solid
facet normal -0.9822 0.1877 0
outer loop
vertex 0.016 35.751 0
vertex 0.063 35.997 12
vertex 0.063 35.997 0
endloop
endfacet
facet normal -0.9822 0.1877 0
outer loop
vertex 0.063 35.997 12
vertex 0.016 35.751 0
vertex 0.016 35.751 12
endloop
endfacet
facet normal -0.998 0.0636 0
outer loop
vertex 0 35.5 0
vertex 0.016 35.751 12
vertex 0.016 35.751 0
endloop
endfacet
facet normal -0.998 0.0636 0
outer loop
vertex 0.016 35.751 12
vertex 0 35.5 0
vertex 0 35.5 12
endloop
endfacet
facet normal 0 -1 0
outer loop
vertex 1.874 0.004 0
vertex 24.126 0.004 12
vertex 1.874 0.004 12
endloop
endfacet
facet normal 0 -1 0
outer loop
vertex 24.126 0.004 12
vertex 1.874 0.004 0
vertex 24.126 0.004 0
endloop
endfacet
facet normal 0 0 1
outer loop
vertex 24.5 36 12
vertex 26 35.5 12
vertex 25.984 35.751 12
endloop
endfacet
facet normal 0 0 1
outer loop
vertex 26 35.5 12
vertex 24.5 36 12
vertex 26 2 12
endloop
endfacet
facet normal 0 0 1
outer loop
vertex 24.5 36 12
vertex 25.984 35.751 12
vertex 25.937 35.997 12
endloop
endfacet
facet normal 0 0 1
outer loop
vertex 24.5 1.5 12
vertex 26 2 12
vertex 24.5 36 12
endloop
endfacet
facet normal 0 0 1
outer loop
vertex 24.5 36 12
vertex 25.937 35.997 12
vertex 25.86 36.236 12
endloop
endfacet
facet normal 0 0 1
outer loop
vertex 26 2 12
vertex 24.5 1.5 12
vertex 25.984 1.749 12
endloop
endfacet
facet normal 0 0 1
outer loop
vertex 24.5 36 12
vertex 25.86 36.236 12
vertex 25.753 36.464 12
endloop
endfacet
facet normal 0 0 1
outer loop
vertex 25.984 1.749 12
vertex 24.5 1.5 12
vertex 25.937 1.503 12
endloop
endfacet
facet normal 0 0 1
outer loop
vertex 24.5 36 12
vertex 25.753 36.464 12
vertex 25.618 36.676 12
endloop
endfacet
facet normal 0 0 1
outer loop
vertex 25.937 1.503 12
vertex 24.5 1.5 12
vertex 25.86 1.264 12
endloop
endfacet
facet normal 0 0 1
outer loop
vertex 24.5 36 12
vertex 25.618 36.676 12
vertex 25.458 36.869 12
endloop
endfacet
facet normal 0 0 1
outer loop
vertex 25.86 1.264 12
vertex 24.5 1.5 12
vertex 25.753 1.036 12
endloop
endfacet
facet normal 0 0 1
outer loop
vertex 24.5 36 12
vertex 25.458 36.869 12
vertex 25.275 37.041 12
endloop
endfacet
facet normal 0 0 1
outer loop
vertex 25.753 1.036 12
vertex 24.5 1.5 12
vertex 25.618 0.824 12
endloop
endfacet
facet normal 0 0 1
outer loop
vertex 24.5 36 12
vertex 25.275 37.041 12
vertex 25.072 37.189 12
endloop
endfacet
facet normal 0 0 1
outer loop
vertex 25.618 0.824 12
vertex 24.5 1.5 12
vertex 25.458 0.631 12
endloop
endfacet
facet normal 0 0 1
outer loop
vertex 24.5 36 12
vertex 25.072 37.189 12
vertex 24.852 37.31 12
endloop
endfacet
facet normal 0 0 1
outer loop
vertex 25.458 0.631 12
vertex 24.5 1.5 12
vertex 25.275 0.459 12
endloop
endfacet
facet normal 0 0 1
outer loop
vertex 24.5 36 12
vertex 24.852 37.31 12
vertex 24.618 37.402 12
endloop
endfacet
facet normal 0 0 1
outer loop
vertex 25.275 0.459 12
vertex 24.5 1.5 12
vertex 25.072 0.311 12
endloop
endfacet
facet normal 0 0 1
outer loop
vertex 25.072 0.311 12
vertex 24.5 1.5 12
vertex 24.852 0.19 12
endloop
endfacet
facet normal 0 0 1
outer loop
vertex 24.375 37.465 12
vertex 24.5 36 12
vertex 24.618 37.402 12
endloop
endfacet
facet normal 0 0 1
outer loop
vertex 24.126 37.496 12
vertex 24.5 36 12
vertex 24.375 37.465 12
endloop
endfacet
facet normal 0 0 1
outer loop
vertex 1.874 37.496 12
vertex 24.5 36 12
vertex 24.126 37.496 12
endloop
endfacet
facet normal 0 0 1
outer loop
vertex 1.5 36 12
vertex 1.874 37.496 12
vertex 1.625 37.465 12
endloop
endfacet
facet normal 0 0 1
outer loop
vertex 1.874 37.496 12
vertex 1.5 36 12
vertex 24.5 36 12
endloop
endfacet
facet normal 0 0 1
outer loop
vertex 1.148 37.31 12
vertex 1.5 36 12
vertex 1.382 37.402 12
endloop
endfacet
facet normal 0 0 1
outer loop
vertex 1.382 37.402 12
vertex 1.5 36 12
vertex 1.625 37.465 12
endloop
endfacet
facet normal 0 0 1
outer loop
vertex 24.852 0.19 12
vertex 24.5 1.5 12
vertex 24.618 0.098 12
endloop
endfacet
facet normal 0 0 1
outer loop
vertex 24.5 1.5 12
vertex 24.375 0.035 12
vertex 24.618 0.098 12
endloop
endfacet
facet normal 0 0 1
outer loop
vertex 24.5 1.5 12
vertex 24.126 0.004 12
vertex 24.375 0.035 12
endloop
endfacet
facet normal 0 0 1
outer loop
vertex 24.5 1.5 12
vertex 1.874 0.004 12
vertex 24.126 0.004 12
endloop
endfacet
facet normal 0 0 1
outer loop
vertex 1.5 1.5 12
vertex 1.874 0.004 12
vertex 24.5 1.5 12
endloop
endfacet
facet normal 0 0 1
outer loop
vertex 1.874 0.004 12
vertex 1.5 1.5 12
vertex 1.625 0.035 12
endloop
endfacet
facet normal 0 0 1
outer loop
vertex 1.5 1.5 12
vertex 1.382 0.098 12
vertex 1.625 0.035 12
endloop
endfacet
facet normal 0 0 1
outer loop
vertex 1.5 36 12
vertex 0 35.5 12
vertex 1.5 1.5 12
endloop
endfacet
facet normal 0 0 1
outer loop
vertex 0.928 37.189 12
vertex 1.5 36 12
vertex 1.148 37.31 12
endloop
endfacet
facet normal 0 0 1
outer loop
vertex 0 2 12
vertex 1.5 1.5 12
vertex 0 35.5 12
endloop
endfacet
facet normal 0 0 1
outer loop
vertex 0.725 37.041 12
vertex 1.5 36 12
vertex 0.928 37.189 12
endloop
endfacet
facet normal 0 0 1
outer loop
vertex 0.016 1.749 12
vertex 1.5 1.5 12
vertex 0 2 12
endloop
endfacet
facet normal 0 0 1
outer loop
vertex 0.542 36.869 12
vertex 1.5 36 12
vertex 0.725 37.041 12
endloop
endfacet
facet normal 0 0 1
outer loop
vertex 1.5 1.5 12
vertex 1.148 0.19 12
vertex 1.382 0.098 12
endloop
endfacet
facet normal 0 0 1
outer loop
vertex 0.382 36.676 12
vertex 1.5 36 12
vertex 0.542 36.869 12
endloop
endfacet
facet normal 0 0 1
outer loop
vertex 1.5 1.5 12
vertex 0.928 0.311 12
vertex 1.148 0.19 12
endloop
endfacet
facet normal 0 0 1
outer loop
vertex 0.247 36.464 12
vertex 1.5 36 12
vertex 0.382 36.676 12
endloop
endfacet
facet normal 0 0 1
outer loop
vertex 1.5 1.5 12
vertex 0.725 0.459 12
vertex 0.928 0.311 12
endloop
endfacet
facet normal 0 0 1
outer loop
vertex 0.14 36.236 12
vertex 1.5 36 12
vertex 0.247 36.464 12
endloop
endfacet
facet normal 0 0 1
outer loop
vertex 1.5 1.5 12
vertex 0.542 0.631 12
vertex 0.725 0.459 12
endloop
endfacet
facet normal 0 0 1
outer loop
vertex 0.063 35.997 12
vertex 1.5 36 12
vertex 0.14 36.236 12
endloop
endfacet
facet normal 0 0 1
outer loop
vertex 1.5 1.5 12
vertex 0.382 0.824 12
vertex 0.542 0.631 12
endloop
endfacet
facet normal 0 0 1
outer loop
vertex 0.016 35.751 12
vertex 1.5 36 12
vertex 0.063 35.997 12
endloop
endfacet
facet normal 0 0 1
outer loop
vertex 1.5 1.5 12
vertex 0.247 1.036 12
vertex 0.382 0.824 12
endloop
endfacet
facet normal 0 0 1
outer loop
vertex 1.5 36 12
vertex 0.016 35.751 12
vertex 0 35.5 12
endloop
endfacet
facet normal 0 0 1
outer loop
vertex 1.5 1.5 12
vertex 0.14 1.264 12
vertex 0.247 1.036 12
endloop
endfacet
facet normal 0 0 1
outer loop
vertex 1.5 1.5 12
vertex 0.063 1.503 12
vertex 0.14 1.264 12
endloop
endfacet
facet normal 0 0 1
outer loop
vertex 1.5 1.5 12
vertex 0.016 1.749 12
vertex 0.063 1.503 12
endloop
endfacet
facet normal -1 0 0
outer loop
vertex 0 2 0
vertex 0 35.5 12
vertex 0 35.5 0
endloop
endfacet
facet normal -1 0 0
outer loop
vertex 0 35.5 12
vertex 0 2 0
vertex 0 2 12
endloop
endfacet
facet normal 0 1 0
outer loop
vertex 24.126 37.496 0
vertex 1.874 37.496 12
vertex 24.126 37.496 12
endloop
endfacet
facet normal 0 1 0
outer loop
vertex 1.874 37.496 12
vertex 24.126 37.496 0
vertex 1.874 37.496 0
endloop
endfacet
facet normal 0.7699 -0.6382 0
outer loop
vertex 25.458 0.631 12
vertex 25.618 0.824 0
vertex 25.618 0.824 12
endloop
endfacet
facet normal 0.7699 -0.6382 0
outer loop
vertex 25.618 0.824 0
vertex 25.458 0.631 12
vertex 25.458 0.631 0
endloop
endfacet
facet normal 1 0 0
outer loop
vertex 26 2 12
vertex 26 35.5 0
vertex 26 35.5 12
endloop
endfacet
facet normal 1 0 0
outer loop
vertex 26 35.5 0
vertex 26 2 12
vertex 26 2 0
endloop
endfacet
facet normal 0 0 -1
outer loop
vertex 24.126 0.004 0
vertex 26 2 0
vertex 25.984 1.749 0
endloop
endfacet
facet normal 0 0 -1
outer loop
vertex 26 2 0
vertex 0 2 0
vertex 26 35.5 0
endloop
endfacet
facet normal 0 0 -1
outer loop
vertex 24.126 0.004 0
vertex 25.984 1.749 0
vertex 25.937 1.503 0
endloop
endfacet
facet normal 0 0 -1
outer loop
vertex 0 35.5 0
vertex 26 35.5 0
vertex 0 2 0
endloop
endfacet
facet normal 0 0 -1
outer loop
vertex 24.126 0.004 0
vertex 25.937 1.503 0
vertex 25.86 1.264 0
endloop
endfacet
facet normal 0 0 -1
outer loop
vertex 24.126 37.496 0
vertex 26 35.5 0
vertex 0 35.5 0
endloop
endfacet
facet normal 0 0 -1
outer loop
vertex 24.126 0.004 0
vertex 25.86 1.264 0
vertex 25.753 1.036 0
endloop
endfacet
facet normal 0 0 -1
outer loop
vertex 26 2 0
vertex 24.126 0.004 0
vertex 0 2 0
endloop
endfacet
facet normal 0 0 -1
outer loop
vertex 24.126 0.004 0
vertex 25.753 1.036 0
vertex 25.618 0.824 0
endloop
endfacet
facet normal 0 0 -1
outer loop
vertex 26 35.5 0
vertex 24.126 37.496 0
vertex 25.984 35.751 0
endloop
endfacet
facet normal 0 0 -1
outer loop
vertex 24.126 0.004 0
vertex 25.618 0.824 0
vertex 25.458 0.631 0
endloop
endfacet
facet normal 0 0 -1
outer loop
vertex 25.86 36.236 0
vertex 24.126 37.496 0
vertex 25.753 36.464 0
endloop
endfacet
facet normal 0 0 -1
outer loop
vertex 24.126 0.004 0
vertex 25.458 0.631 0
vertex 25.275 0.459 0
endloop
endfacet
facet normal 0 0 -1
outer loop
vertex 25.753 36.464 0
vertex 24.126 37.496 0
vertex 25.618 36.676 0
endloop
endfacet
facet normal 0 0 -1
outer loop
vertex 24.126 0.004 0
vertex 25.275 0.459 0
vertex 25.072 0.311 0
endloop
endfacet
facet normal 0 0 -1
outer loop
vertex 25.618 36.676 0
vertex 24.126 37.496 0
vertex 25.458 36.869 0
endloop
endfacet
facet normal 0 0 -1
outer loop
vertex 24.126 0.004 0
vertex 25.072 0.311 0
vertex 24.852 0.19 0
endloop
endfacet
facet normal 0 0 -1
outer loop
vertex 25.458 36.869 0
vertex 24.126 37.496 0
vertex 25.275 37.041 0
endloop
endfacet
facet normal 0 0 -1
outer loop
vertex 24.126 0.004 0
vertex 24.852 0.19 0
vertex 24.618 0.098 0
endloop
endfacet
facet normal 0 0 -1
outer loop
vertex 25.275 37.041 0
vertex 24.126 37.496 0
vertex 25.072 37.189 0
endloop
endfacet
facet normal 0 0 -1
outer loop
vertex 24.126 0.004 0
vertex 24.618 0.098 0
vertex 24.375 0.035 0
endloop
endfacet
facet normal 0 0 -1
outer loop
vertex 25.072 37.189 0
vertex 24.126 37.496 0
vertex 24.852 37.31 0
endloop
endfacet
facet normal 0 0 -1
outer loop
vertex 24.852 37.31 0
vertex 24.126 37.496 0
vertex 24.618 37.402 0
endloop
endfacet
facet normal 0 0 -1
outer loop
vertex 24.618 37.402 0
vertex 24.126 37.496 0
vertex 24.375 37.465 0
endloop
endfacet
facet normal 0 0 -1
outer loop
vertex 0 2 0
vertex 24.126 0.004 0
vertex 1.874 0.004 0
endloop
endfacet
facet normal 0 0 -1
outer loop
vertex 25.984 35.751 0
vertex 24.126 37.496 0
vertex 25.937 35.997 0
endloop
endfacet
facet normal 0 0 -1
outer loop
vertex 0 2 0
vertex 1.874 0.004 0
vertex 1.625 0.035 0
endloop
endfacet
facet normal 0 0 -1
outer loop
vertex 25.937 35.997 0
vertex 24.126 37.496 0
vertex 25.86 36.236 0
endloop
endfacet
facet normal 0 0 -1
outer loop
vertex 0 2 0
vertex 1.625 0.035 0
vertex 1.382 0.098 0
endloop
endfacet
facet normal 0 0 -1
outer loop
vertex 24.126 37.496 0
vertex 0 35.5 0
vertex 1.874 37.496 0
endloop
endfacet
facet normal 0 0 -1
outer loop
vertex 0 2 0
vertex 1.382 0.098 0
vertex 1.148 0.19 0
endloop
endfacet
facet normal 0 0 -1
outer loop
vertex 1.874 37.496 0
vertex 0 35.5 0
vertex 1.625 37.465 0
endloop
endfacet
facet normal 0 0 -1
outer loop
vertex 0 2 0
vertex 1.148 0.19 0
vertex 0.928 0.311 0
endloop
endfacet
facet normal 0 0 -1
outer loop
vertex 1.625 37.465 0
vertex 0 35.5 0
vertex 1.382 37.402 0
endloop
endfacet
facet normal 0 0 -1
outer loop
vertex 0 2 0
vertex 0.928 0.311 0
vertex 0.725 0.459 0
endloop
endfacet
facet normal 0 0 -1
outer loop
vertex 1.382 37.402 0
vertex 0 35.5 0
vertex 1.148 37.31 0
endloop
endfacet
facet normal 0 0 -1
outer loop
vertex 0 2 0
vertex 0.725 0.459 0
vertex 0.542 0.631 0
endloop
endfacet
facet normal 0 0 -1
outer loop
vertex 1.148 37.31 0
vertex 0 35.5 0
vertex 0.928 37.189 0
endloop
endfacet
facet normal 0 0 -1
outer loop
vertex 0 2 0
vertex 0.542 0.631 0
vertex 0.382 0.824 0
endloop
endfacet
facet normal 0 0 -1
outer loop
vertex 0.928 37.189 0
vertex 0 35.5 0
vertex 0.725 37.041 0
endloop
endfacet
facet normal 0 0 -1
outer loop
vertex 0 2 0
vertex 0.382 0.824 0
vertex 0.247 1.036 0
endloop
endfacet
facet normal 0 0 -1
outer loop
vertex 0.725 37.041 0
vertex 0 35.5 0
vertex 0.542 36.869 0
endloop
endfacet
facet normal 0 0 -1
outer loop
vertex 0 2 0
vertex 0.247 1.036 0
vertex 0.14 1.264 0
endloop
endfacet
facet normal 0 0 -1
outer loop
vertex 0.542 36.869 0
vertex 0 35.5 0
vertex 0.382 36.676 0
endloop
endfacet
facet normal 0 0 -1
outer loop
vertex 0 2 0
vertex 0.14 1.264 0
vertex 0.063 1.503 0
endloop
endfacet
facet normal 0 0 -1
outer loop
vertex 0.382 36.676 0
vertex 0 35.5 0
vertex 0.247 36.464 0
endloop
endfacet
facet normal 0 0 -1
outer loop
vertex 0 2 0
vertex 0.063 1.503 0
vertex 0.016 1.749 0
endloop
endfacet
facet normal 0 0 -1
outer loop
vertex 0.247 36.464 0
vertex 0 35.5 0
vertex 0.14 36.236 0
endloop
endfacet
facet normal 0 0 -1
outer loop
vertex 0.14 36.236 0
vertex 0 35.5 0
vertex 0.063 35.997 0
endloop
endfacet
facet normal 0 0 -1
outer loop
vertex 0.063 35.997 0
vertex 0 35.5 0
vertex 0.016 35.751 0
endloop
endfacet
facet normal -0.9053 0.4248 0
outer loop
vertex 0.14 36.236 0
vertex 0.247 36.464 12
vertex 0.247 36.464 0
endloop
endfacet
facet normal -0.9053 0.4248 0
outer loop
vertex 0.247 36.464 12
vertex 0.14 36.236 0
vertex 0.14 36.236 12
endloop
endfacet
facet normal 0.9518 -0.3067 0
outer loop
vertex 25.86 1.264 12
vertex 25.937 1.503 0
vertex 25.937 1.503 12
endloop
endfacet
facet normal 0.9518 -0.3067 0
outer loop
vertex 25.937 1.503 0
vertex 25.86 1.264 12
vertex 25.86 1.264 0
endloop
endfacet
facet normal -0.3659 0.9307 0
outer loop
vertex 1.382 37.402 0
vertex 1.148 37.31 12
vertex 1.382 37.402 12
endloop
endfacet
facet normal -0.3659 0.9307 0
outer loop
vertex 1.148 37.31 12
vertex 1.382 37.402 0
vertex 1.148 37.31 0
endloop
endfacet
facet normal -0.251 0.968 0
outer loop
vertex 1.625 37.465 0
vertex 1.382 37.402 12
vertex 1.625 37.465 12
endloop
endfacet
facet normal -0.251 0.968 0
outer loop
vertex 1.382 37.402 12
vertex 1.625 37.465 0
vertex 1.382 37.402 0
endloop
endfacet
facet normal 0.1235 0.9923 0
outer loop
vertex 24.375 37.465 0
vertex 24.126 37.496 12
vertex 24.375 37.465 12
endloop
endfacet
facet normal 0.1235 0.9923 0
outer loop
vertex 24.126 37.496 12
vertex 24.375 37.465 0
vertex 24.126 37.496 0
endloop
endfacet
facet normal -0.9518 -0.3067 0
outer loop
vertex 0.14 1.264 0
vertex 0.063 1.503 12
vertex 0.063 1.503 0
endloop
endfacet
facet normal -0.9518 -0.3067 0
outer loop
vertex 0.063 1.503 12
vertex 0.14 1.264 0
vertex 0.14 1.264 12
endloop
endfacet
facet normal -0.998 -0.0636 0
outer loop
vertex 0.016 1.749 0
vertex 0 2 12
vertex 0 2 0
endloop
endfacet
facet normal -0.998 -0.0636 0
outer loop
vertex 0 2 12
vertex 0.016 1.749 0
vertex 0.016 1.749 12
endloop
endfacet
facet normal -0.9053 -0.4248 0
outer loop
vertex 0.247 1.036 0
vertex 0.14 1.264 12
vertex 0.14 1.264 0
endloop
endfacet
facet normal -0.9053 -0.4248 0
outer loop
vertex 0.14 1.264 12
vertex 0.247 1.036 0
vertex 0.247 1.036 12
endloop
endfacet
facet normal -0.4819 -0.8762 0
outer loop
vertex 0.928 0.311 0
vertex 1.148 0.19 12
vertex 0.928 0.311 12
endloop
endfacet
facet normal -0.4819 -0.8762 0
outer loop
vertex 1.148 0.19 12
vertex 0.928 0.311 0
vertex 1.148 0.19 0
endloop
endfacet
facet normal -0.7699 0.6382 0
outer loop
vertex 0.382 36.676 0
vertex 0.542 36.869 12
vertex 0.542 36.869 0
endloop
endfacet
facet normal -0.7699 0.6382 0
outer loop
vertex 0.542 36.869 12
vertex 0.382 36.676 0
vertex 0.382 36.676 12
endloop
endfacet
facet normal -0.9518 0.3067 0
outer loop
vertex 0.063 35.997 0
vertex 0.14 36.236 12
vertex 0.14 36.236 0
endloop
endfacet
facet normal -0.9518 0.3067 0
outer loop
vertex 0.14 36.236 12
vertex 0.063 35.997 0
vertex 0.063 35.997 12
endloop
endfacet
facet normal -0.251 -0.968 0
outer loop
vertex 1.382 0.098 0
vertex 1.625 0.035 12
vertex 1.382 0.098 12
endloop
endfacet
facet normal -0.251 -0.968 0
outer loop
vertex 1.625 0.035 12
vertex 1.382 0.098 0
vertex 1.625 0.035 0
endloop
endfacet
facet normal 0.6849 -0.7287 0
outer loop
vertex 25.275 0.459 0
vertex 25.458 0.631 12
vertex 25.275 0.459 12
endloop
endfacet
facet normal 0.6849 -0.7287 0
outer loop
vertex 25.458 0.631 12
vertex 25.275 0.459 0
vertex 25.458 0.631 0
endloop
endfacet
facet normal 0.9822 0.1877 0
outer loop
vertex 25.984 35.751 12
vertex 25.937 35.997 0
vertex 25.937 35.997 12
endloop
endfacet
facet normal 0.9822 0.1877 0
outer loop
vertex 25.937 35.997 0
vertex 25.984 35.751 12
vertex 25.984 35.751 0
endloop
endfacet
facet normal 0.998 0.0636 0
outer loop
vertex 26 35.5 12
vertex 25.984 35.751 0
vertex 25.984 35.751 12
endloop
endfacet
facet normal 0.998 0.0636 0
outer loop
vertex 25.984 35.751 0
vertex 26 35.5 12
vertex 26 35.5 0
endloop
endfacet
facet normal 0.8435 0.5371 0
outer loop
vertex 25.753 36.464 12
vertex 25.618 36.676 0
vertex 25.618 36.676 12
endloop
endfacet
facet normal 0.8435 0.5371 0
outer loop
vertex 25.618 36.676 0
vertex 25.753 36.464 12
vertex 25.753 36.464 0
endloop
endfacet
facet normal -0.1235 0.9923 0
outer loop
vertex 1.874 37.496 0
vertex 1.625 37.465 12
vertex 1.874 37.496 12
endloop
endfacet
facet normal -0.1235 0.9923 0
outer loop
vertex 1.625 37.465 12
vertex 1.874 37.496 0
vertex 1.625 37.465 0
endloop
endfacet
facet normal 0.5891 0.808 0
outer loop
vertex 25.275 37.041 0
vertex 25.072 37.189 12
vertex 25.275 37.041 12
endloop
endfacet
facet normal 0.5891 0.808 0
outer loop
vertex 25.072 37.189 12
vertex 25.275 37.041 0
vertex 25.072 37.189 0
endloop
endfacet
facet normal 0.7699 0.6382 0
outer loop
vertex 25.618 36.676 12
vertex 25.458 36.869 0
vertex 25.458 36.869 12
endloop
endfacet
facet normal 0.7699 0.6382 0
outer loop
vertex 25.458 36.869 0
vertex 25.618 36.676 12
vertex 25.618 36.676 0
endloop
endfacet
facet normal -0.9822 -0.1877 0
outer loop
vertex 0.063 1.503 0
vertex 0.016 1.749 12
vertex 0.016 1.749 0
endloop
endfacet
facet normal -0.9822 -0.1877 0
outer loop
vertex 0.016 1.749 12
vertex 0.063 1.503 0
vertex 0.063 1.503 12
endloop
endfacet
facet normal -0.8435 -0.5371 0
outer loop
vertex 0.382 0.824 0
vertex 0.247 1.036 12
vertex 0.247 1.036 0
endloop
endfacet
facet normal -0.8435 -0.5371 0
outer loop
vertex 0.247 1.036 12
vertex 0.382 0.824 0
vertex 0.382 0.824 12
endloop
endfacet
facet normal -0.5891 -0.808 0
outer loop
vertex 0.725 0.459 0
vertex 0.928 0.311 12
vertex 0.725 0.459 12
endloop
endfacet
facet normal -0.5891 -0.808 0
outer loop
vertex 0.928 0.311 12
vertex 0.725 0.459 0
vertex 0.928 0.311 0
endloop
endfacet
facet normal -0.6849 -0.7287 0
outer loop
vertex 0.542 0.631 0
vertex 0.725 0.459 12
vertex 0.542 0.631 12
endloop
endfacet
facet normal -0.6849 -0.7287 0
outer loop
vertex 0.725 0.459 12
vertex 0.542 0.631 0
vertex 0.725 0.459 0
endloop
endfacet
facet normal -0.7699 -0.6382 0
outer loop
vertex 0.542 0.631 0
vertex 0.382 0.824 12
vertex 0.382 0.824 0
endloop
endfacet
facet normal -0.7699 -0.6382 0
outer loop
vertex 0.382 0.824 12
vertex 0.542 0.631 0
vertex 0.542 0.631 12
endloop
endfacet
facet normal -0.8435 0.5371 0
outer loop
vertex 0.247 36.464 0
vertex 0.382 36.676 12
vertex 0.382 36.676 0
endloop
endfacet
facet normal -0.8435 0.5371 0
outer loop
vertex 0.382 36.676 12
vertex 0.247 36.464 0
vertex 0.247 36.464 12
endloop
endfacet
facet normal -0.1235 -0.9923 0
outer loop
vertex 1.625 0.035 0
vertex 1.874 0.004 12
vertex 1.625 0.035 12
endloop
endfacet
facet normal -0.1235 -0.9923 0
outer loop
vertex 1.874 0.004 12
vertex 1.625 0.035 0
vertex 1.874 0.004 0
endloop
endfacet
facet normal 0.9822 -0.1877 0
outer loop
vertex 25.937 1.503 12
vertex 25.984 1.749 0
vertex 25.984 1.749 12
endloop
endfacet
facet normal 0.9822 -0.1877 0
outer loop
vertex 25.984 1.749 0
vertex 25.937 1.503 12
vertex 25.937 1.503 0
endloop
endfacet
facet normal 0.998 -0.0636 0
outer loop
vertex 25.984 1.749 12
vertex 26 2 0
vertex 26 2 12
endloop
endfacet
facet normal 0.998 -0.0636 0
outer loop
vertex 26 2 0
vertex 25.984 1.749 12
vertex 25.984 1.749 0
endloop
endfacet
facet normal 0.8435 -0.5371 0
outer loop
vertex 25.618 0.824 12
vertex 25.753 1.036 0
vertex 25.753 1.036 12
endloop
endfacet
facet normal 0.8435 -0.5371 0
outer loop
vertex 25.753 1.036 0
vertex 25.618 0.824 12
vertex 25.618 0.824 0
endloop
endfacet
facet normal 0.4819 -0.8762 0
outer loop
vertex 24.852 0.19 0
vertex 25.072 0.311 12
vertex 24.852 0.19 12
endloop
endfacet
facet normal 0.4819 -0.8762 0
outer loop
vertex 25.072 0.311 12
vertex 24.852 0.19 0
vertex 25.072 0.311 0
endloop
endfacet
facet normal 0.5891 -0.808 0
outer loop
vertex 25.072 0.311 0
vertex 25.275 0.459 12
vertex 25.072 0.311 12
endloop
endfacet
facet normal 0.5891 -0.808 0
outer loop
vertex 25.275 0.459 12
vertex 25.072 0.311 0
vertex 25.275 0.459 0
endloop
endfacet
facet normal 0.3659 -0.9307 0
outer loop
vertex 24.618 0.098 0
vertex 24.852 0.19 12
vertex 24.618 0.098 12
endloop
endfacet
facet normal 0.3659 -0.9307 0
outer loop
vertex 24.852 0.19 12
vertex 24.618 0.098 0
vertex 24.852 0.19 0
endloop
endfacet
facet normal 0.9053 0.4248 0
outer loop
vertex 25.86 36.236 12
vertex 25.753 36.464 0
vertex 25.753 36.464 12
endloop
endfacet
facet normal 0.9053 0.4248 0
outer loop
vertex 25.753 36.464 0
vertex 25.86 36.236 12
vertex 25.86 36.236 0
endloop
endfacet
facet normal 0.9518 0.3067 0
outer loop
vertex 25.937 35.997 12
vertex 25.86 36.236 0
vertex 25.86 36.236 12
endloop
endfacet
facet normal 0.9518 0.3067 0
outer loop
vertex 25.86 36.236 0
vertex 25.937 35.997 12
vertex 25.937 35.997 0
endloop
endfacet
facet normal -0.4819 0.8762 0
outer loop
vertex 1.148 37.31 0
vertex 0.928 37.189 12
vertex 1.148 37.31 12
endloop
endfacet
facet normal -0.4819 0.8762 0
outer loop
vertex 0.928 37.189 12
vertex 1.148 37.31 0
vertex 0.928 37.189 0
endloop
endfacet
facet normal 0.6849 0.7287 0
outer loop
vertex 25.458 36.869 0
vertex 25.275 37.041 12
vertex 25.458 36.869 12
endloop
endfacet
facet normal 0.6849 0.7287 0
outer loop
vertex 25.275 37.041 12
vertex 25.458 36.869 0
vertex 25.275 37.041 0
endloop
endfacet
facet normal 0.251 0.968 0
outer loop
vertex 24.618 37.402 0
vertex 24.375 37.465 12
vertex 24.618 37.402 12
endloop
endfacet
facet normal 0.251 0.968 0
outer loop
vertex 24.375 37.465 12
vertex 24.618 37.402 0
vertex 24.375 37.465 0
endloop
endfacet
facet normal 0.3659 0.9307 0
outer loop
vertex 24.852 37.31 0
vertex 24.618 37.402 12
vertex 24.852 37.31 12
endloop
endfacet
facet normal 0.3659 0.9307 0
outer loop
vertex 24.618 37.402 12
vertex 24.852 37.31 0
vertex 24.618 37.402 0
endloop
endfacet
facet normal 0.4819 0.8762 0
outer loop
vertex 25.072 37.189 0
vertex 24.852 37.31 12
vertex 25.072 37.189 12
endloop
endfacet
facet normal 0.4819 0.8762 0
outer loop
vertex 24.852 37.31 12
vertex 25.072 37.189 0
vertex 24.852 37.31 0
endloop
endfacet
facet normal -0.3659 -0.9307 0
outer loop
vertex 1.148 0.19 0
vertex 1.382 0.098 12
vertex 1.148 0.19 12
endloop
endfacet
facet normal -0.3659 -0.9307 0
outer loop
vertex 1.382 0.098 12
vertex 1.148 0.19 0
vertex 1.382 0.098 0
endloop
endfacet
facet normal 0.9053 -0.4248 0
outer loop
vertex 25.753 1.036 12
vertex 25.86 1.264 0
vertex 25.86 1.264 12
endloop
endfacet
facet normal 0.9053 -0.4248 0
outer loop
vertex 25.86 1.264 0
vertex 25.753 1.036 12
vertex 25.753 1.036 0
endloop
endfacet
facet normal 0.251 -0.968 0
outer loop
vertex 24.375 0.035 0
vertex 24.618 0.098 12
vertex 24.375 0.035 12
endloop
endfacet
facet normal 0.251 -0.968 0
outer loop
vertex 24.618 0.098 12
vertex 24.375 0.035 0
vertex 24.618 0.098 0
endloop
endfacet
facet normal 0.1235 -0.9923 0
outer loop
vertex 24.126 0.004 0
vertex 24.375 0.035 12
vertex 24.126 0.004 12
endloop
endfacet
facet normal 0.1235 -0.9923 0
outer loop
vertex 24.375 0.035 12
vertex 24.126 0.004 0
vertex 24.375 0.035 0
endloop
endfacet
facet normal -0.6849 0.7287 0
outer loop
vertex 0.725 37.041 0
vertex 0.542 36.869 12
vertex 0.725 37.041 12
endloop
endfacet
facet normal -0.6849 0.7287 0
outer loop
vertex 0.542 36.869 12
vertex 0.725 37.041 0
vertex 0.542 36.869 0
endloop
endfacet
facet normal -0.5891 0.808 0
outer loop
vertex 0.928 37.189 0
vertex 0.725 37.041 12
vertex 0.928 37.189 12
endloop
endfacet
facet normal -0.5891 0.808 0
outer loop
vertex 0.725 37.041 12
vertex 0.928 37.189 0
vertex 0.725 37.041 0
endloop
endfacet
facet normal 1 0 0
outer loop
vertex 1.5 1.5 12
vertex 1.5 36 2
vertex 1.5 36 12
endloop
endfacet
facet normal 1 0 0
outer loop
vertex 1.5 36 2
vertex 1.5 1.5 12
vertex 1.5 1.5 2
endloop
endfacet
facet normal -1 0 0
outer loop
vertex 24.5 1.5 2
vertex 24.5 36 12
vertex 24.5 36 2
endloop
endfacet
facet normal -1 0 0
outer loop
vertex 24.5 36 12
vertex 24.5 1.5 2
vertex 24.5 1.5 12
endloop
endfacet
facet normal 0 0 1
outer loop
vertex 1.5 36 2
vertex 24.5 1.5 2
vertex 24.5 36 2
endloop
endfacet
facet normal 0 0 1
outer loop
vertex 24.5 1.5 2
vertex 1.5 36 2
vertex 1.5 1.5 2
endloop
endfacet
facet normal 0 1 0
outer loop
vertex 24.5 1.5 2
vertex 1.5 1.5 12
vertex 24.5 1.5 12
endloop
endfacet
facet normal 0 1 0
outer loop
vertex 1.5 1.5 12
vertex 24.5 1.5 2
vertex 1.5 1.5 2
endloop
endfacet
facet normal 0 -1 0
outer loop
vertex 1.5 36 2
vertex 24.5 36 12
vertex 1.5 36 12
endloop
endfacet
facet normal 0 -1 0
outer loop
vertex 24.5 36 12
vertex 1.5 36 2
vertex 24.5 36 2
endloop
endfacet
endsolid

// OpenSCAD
length = 26;
width = 37.5;
height = 12;
floorThickness = 2;
wallThickness = 1.5;

difference() {    
    $fn=50;
    minkowski()
    {
      translate([2,2,0])
        cube([length-4, width-4, height - 1]);
      cylinder(r=2,h=1);
    }
    
    //cube([length, width, height]);
    translate([wallThickness, wallThickness, floorThickness])
        cube([length - wallThickness * 2, width - wallThickness * 2, height - floorThickness]);
}
